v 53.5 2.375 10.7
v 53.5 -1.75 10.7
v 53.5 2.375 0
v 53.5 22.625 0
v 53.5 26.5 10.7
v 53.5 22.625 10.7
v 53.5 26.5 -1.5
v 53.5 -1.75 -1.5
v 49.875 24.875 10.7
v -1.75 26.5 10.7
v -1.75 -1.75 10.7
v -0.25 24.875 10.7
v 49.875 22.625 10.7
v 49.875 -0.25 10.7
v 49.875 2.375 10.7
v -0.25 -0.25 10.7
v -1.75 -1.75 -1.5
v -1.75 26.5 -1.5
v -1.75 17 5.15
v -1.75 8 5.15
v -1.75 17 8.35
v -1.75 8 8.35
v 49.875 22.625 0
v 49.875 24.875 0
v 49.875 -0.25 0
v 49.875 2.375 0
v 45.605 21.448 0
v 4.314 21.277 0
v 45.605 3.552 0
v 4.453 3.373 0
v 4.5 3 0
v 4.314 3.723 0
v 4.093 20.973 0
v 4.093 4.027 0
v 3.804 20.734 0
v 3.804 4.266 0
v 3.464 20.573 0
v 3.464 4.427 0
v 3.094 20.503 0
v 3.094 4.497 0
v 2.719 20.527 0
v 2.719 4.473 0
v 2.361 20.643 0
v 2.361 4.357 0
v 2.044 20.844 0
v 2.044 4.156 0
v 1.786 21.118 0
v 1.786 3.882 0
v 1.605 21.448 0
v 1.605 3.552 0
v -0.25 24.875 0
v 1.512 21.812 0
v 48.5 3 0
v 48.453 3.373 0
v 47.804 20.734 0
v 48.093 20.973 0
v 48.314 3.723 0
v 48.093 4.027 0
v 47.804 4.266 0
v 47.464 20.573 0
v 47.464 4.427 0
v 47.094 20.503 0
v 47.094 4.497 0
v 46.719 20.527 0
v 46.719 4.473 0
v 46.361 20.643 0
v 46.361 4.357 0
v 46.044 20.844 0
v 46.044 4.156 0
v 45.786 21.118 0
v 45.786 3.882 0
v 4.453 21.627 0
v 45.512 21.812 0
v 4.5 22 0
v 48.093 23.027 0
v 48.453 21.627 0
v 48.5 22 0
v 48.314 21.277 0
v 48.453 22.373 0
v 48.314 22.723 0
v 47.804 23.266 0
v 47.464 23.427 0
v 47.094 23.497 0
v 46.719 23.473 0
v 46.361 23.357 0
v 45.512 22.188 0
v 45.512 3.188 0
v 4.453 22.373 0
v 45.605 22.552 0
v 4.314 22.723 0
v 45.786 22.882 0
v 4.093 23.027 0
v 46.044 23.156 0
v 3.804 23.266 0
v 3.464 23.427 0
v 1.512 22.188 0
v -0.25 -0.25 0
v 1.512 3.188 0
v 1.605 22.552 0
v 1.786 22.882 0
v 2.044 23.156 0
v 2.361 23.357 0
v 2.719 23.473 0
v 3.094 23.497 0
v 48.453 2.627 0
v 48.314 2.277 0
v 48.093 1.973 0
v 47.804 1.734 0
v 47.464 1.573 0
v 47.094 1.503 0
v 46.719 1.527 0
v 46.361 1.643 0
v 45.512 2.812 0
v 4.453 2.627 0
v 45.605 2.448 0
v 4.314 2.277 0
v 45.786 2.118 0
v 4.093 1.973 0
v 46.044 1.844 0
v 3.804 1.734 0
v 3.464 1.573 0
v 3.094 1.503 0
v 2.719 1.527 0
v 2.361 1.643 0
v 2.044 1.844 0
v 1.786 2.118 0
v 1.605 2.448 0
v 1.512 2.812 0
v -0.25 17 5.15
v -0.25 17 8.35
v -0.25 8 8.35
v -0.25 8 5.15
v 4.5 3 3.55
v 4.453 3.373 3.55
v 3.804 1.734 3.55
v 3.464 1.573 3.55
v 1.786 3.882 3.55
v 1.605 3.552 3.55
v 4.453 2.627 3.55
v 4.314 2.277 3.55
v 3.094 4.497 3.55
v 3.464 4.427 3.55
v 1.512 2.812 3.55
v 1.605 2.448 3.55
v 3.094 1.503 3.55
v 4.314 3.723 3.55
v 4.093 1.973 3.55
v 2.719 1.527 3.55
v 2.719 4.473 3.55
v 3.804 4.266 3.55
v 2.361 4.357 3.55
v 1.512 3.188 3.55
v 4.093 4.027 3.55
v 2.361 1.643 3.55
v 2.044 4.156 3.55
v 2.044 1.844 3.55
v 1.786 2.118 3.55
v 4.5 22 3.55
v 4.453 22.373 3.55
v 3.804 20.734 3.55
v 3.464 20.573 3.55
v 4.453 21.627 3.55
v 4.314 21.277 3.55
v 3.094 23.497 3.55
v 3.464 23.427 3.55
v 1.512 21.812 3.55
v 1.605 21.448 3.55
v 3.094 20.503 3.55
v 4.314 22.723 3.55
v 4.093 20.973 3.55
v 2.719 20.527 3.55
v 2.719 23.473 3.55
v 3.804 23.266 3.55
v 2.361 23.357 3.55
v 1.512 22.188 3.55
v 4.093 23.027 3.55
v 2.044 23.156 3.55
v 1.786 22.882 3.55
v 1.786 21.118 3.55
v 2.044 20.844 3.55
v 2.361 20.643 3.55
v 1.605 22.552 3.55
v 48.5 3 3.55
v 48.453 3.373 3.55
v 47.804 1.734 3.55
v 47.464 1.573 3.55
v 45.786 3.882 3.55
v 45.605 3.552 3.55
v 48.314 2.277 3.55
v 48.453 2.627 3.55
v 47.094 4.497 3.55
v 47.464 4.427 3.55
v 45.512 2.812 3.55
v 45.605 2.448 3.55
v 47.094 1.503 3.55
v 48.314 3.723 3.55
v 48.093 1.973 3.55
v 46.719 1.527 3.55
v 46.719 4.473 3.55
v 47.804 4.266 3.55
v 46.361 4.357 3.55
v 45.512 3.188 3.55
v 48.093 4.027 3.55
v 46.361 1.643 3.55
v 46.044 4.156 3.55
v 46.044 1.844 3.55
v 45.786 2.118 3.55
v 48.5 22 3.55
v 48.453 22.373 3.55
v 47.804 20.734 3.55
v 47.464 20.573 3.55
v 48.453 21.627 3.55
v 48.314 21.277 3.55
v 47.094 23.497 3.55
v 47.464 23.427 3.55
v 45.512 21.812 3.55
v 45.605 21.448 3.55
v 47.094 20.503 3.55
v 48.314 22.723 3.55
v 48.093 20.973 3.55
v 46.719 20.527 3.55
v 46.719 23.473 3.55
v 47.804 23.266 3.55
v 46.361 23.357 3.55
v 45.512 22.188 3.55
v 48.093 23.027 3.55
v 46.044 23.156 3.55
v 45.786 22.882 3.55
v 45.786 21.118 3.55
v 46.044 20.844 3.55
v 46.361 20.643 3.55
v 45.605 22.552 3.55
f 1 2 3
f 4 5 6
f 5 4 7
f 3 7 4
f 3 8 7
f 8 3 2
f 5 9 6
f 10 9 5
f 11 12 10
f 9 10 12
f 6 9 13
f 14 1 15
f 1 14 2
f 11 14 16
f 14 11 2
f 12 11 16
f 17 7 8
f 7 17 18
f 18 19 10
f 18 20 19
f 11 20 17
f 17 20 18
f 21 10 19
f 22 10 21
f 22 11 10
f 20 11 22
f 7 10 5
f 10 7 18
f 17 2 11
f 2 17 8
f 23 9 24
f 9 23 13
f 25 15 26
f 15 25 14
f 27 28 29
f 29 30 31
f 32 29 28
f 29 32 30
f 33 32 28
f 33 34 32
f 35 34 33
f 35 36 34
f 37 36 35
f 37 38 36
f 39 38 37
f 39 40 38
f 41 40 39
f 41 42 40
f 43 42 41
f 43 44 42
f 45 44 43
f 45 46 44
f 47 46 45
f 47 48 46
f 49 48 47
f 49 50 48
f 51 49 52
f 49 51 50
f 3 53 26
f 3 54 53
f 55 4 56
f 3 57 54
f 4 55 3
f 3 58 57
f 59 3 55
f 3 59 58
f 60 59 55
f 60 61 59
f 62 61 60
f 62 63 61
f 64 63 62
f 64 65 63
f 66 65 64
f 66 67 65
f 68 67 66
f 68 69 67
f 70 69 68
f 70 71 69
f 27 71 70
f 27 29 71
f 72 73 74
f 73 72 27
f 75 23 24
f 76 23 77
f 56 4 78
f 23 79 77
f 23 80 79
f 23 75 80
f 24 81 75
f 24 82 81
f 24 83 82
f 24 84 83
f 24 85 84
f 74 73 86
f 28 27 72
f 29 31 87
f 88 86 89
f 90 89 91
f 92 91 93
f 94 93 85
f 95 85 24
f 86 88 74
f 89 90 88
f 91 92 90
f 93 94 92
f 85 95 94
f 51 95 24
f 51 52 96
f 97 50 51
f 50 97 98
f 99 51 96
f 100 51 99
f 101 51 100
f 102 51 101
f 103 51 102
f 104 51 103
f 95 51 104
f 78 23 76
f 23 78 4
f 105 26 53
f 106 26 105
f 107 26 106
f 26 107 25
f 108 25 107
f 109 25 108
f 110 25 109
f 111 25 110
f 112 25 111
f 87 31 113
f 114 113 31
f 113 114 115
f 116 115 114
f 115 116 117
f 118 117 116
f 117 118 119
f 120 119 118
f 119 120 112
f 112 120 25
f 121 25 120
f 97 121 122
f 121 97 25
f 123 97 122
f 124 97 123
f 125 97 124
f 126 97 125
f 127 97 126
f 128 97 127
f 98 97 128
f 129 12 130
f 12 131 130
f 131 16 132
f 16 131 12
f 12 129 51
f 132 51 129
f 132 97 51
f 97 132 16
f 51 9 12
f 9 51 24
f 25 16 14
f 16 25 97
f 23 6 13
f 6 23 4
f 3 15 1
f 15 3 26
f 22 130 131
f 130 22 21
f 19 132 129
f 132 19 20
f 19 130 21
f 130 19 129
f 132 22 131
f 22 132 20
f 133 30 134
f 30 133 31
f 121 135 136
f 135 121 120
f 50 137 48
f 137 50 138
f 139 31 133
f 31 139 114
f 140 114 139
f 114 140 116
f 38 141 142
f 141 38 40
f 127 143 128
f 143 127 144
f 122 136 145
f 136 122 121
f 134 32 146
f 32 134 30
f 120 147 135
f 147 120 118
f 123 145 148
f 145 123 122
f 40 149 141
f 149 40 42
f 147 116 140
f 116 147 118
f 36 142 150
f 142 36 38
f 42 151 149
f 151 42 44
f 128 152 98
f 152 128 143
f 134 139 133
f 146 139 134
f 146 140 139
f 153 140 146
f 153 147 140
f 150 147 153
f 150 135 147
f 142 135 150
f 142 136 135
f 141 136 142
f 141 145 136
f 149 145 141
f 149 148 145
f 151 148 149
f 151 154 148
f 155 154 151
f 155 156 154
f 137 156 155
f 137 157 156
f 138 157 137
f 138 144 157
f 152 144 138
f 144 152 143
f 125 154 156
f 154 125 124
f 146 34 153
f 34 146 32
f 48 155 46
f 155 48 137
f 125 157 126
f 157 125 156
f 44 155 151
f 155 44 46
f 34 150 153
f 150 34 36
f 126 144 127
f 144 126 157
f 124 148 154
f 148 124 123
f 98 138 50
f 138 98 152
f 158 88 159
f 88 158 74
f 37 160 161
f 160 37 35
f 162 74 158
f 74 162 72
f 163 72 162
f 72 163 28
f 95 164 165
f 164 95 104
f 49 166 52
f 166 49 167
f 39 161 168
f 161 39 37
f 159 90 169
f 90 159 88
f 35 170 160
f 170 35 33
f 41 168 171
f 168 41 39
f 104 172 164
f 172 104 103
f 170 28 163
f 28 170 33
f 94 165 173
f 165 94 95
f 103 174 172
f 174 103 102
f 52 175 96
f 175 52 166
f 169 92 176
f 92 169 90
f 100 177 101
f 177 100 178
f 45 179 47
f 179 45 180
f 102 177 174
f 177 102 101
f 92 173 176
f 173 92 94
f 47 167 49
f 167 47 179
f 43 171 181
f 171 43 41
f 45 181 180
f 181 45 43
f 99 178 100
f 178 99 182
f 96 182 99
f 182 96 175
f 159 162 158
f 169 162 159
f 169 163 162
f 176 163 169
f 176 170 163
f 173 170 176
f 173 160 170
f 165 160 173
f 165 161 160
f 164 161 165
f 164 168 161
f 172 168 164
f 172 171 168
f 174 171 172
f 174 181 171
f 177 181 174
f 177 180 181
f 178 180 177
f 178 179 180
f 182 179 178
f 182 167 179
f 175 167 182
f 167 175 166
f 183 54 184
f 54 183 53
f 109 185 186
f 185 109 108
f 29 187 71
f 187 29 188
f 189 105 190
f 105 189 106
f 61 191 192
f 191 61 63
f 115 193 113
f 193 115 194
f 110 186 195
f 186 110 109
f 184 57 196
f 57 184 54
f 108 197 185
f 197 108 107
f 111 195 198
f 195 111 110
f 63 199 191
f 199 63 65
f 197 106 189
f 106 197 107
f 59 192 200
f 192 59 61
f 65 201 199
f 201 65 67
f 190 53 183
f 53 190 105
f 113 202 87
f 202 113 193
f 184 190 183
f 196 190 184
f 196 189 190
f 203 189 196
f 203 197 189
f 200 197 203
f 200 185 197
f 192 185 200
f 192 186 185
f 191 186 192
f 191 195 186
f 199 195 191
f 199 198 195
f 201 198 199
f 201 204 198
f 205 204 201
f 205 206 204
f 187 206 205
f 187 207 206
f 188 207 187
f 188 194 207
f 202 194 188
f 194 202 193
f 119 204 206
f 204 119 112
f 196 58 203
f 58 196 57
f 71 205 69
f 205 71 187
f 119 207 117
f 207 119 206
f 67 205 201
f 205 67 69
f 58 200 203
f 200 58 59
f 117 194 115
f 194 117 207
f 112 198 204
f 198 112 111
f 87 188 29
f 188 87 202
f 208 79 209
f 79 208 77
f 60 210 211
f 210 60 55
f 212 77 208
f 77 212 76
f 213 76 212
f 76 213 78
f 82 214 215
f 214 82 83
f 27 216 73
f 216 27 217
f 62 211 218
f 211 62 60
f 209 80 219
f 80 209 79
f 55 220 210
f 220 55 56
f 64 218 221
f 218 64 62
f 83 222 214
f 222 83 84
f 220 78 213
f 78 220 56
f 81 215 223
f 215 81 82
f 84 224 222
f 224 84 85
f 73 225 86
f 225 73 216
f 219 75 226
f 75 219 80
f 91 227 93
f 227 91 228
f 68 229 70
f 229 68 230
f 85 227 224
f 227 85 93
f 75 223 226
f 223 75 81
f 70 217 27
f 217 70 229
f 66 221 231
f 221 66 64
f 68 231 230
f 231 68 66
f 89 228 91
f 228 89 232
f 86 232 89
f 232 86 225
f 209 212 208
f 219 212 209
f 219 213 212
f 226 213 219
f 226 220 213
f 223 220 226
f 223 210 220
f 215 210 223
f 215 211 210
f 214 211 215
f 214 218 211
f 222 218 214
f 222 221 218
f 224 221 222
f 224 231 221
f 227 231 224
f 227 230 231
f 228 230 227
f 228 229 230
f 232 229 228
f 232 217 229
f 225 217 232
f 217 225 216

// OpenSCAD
//pcb长宽高
pcb_length=50;
pcb_width=25;
pcb_hight=1.6;

//typec连接器的宽和高
typec_hight=3.2;
typec_width=9;

//2.53牛角座的
dc5_hight=8.7;
dc5_width=dc5_hight;
dc5_length=20;

Case_Thickness = 1.5;     //Wall Thickness
Case_Gap = 0.25;


Case_L = pcb_length + Case_Thickness*2 + Case_Gap+2;
Case_W = pcb_width + Case_Thickness*2 + Case_Gap;
Case_Z = Case_Thickness + dc5_hight+2;      //Total height of case

//Shell hollow inside dimensions
CutOut_L = pcb_length + Case_Gap*2;
CutOut_W = pcb_width + Case_Gap*2;

CutOut_Z = Case_Z - Case_Thickness;


module MountingPeg()
{
	union() {
		cylinder(h=Case_PCB_Z, d=BB_Hole_OD, $fn=25);
		cylinder(h=Case_PCB_Z/2, d1=BB_Hole_OD*1.5, d2=BB_Hole_OD, $fn=25);
		translate([0,0,Case_PCB_Z-0.1]) cylinder(h=BB_Z/2+0.1,d=BB_Hole_ID, $fn=25);
		translate([0,0,Case_PCB_Z+BB_Z/2-0.1]) cylinder(h=BB_Z/2+0.1,d1=BB_Hole_ID, d2=BB_Hole_ID/2, $fn=25);
	}
}

module CornerGrip(R,T,Z,D,CutOff)
{
	rotate([0,0,D]) {
		difference() {
			translate([R,R,0]) cylinder(r=R, h=Z, $fn=50);
			translate([R,R,0]) cylinder(r=R, h=Z, $fn=50);
			translate([R-CutOff,0,0]) cylinder(r=R, h=Z, $fn=50);
			translate([0,R-CutOff,0]) cylinder(r=R, h=Z, $fn=50);
		}
	}
}



module Base()
{
	union() {
        //cube([pcb_length,pcb_width,pcb_hight+10],center = false);
	difference() {
		//Outer Shell of Case (Join two cubes together with different corner radii to achieve different size corners on each end)
		translate([-Case_Thickness-Case_Gap, -Case_Thickness-Case_Gap, -Case_Thickness]) {
		union() {
            cube([Case_L,Case_W,Case_Z],center = false);
			//roundCornersCube(Case_L, Case_W, Case_Z, Case_SmCurve_R);
			//translate ([Case_SmCurve_R,0,0]) roundCornersCube(Case_L-Case_SmCurve_R, Case_W, Case_Z, Case_SmCurve_R);
		}}
		
		//Hollow Out Inside of Case
        
		translate([-Case_Gap,-Case_Gap,0]) {
		union() {
            //挖空部分
            cube([pcb_length+Case_Gap/2,pcb_width+Case_Gap/2,pcb_hight+10],center = false);
		}}
		
		//Components Cutouts
        
        //DC10
        translate([pcb_length+dc5_width/2+0.5,pcb_width/2,(dc5_hight+2)/2]) cube([dc5_width+2, dc5_length+Case_Gap, dc5_hight+2],center = true);
        
        //USB-C
        translate([0, pcb_width/2, (pcb_hight+typec_hight+dc5_hight)/2]) cube([10, typec_width+0.15, typec_hight+0.15],center = true);
        
	}
		//Mounting pegs
		translate([3,3,0]) cylinder(h=(dc5_hight-pcb_hight)/2, r=1.5, $fn=25);
		translate([3,pcb_width-3,0]) cylinder(h=(dc5_hight-pcb_hight)/2, r=1.5, $fn=25);
		translate([pcb_length-3,3,0]) cylinder(h=(dc5_hight-pcb_hight)/2, r=1.5, $fn=25);
		translate([pcb_length-3,pcb_width-3,0]) cylinder(h=(dc5_hight-pcb_hight)/2, r=1.5, $fn=25);


		//Dev Station rails
        /*
		if (DevRails_Options == 1) {
			translate([Case_SmCurve_R-Case_Thickness-Case_Gap,Case_W-Case_Thickness-Case_Gap,-Case_Thickness]) DevRail(DSR_L, DSR_W, DSR_H);
			translate([DSR_L+Case_SmCurve_R-Case_Thickness-Case_Gap,-Case_Thickness-Case_Gap,-Case_Thickness]) rotate([0,0,180]) {
				DevRail(DSR_L, DSR_W, DSR_H);
			}
		}
        */

	}
}



color("Green"){
	render(convexity=4) {
		Base();
	}
}
